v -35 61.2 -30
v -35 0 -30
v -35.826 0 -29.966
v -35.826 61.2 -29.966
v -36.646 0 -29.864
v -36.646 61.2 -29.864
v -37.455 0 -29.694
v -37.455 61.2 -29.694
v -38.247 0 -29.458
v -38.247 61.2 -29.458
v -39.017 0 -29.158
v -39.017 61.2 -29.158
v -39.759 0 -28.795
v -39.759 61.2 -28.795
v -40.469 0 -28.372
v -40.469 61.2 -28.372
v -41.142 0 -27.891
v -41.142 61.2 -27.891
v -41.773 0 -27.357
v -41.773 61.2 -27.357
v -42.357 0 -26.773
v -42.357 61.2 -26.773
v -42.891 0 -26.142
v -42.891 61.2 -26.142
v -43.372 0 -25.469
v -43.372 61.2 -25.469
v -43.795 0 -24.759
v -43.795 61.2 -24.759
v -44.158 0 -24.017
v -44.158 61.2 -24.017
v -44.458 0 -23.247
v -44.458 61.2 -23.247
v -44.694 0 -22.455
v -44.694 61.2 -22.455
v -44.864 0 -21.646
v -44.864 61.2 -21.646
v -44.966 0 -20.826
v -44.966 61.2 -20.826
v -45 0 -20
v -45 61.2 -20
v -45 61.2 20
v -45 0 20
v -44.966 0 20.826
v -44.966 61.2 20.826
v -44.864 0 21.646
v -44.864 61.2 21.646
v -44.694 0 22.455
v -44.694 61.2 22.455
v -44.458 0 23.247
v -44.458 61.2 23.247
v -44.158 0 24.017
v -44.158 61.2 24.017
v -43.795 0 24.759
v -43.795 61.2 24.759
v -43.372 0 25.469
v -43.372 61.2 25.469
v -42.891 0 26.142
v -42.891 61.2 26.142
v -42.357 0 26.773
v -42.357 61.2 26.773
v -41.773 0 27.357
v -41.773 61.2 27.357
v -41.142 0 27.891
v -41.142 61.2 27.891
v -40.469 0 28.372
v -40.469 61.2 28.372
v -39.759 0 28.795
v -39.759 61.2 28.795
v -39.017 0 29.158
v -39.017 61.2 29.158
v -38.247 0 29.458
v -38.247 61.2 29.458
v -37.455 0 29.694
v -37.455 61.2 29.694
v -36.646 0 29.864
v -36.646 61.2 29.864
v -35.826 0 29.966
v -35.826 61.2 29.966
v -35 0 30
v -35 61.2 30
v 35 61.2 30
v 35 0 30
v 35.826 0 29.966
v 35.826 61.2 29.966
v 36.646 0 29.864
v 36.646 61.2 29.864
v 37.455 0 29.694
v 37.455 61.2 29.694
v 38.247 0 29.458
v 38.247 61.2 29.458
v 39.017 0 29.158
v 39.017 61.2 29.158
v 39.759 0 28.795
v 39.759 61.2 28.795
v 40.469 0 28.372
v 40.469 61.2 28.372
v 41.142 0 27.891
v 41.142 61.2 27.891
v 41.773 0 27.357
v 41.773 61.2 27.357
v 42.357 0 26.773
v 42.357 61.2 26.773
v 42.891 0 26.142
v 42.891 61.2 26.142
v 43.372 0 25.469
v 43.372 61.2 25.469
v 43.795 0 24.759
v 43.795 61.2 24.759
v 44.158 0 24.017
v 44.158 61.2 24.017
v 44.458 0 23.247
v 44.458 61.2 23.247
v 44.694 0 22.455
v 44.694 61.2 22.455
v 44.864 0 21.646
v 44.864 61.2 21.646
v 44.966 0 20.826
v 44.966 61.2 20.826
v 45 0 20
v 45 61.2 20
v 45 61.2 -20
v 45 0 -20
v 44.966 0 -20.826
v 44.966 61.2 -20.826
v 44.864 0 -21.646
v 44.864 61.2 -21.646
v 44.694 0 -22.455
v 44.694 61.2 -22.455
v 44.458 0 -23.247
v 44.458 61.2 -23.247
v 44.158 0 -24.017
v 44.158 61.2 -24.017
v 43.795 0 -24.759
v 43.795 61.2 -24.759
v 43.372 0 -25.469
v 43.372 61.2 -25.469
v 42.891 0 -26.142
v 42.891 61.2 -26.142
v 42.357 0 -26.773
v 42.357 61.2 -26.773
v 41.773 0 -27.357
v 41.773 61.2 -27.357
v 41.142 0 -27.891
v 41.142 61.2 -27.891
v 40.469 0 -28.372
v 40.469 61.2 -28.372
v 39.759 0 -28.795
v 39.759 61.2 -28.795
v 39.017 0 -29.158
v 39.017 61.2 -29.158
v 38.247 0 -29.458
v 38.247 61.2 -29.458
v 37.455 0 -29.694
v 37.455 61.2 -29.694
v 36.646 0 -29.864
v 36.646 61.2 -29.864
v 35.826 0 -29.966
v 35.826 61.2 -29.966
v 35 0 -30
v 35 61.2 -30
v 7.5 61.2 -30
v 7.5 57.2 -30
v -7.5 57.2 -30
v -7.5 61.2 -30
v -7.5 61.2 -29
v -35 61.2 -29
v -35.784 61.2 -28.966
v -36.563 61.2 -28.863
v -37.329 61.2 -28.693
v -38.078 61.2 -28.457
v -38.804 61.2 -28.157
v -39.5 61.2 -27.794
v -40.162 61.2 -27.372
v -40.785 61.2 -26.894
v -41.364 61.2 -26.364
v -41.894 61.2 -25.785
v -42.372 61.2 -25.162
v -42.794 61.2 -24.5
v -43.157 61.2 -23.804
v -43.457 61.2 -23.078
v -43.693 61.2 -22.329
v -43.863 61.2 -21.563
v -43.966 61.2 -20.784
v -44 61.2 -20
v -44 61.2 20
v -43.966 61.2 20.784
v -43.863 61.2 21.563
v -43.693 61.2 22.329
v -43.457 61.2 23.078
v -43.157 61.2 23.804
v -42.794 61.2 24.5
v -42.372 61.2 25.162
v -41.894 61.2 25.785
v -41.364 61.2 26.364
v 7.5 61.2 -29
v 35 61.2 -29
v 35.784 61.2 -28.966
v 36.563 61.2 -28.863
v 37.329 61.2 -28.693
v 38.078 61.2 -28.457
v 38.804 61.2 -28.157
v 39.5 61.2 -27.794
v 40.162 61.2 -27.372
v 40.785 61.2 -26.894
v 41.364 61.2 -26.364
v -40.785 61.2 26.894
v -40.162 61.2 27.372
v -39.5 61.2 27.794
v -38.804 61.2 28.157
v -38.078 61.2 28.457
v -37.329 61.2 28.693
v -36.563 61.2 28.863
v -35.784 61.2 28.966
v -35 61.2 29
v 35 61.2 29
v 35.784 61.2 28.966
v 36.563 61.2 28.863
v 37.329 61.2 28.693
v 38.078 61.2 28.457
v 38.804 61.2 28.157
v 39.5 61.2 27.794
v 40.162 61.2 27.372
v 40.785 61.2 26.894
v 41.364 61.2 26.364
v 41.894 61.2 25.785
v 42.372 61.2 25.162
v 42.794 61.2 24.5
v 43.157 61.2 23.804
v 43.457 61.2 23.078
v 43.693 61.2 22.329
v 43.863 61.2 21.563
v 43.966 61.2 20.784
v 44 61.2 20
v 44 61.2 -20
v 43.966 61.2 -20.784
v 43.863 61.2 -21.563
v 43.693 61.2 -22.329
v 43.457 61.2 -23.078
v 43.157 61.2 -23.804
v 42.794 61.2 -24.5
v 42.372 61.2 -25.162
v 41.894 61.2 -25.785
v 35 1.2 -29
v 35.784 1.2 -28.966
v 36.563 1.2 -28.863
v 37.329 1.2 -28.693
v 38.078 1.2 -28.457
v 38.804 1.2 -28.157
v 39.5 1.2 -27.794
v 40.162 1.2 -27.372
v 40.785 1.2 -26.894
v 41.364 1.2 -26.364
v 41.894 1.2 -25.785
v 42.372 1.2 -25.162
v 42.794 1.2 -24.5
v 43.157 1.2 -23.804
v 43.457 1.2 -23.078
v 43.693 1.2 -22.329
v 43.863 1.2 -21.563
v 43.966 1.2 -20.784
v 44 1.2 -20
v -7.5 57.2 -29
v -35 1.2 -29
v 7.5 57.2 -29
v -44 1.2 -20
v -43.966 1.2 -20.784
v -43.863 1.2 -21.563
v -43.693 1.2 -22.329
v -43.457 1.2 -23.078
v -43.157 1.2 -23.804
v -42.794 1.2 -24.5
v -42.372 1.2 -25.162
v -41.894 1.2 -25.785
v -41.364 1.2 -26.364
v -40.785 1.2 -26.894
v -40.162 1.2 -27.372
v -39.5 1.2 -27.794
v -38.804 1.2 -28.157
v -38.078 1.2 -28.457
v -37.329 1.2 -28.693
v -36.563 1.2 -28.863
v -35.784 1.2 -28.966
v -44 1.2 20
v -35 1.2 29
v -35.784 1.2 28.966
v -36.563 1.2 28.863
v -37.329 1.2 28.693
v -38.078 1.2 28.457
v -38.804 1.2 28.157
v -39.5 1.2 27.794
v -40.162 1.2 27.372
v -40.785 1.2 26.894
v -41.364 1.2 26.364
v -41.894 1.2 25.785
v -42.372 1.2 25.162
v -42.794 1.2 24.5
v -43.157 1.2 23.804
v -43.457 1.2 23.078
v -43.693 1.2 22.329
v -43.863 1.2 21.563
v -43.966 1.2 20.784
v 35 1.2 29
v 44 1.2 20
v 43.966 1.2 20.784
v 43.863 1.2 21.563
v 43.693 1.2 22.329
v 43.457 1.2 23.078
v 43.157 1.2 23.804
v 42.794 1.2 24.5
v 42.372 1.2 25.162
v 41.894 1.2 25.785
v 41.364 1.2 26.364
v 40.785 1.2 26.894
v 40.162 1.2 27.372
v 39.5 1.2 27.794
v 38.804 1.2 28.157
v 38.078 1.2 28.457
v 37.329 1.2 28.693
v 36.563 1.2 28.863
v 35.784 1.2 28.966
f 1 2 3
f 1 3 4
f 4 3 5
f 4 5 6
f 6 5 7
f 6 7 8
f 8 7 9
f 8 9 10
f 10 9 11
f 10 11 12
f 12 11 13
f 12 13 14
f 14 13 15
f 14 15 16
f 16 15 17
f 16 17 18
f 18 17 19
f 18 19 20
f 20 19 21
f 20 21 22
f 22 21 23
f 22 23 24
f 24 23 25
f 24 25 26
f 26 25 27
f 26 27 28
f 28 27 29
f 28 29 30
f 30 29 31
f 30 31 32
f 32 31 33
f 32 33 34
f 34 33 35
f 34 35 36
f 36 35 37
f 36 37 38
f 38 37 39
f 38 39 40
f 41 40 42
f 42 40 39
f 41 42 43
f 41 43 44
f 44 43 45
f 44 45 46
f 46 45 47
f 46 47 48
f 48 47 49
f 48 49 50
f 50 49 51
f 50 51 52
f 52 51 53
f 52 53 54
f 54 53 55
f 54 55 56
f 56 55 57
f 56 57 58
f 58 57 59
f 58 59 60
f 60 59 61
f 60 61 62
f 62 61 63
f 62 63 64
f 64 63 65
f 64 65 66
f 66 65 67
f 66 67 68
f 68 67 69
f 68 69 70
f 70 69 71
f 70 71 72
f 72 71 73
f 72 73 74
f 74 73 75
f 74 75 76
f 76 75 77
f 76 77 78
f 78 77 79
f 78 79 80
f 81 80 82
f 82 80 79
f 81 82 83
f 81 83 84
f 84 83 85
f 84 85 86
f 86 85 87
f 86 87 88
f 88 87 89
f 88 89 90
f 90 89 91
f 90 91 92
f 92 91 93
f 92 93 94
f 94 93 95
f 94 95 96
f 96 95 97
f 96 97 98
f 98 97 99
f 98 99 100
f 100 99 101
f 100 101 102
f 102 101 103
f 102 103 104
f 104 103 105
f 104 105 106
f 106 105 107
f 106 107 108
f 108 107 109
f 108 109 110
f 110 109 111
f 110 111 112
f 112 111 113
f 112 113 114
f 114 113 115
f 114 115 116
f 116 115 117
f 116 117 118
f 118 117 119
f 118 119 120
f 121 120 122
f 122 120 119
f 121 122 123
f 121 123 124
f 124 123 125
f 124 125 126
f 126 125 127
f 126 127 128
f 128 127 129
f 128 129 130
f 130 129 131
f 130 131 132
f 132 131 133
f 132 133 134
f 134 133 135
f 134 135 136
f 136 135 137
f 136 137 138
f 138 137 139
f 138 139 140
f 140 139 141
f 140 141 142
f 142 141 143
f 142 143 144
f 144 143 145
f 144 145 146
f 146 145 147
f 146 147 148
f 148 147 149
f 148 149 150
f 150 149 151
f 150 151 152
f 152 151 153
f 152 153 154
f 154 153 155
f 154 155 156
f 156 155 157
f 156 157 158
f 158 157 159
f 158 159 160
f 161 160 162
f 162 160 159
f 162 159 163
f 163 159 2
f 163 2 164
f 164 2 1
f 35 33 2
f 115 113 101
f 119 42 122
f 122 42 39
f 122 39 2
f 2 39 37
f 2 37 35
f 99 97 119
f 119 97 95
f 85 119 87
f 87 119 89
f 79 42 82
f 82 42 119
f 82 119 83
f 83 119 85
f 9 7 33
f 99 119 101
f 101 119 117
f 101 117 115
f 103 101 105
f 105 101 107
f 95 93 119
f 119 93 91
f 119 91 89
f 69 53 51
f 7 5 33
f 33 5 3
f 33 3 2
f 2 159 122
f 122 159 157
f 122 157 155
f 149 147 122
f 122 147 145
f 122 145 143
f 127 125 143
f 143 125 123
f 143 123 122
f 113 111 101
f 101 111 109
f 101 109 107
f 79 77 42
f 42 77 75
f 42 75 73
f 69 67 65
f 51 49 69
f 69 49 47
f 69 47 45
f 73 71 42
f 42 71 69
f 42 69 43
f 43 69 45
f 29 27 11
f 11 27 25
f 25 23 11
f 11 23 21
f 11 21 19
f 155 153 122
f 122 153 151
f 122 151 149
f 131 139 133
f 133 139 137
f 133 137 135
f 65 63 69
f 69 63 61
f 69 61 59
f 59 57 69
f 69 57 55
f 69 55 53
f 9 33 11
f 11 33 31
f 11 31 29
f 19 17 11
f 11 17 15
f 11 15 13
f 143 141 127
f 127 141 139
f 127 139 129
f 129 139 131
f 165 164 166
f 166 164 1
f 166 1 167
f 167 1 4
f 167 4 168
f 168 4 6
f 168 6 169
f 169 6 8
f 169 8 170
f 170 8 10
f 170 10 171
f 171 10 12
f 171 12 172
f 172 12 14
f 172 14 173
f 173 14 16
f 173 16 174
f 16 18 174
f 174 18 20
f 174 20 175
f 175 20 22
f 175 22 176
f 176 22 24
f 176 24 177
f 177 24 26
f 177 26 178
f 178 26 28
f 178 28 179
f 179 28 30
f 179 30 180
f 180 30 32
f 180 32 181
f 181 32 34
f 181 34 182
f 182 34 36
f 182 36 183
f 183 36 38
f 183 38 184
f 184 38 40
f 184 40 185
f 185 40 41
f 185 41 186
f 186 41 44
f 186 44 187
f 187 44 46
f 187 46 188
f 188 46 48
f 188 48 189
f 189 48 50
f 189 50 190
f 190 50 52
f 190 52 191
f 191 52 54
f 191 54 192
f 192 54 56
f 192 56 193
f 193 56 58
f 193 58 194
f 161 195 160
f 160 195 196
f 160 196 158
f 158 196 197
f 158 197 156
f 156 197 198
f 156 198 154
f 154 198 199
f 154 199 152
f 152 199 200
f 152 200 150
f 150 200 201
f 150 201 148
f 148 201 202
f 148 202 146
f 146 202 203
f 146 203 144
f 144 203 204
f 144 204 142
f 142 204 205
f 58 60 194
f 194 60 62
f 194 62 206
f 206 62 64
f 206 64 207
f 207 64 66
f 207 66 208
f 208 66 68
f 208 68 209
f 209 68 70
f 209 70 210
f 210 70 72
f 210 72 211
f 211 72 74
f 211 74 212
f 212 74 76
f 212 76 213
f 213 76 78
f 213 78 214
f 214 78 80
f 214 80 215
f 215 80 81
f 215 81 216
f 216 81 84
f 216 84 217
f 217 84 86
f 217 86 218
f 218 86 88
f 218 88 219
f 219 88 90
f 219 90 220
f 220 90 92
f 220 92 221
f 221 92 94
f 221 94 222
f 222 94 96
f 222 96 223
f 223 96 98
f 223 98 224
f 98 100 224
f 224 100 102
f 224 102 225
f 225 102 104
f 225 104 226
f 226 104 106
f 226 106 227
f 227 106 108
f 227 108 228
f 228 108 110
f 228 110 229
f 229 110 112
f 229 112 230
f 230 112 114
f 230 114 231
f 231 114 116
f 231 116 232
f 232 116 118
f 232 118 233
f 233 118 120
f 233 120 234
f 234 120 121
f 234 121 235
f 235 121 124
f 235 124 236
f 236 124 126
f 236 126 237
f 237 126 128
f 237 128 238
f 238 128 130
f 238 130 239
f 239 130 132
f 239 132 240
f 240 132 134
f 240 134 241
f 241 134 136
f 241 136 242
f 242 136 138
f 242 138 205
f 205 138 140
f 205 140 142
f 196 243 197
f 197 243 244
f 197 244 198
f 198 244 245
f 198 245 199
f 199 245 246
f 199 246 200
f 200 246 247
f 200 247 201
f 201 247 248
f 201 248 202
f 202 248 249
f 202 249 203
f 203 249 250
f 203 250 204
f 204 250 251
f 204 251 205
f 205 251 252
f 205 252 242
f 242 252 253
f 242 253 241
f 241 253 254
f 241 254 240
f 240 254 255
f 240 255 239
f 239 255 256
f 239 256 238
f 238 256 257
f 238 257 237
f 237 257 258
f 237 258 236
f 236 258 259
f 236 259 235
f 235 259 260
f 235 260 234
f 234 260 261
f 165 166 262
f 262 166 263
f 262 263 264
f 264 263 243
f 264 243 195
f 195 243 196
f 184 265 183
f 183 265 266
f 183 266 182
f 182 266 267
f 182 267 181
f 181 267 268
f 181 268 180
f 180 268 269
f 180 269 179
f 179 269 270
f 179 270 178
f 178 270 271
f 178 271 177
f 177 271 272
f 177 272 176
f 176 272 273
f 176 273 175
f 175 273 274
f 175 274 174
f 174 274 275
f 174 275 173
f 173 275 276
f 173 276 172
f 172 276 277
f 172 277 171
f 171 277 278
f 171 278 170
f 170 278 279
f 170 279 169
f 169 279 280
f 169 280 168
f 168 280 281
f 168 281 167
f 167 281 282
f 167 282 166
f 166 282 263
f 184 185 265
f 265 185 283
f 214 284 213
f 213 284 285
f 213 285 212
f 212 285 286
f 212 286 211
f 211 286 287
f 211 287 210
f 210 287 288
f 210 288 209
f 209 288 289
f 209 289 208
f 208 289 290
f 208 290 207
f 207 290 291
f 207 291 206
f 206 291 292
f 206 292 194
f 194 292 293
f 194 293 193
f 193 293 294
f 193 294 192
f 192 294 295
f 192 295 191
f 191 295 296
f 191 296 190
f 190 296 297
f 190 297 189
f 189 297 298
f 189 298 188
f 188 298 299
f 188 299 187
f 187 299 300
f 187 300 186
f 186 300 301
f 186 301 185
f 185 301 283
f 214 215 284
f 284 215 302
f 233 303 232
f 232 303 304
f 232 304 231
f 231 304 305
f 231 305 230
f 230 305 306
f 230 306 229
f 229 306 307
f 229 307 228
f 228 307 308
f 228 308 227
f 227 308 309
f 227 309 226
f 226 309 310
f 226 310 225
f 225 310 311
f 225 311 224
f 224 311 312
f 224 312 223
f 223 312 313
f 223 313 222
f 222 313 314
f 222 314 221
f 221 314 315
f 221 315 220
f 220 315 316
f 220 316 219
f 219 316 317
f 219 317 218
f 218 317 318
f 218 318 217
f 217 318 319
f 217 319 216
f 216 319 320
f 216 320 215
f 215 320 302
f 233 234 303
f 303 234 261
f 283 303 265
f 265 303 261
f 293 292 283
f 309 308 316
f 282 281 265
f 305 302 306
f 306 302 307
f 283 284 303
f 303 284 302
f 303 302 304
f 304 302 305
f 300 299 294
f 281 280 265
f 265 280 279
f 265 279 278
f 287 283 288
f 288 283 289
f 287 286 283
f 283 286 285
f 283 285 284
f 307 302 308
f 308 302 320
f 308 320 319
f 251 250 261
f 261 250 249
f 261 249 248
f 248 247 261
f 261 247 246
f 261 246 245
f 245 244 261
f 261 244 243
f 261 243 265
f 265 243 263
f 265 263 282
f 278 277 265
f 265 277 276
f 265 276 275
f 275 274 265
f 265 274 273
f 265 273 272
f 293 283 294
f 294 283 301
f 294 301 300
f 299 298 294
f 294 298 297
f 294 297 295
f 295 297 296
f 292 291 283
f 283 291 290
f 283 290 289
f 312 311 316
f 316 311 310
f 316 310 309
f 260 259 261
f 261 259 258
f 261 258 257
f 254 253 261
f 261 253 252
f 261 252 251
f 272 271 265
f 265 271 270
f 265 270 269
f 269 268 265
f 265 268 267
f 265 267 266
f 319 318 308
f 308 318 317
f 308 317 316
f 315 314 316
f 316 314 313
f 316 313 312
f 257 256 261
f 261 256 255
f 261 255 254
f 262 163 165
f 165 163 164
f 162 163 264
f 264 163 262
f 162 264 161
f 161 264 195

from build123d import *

# Parameters (mm, degrees)
EXTRUDE_1_DEPTH     = 1.2
EXTRUDE_2_DEPTH     = 60
SKETCH_5_W          = 15
SKETCH_5_H          = 8
CUT_EXTRUDE_1_DEPTH = 1.5


with BuildPart() as part:
    # 草图1 → 凸台-拉伸1 (new body)
    with BuildSketch(Plane(origin=(0, 0, 0), x_dir=(1, 0, 0), z_dir=(0, 1, 0))):
        with BuildLine():
            Line((-35, 30), (35, 30))
            ThreePointArc((35, 30), (42.071067812, 27.071067812), (45, 20))
            Line((45, 20), (45, -20))
            ThreePointArc((45, -20), (42.071067812, -27.071067812), (35, -30))
            Line((35, -30), (-35, -30))
            ThreePointArc((-35, -30), (-42.071067812, -27.071067812), (-45, -20))
            Line((-45, -20), (-45, 20))
            ThreePointArc((-45, 20), (-42.071067812, 27.071067812), (-35, 30))
        make_face()
    extrude(amount=EXTRUDE_1_DEPTH)

    # 草图2 → 凸台-拉伸2 (add)
    with BuildSketch(Plane(origin=(0, 1.2, 0), x_dir=(1, 0, 0), z_dir=(0, 1, 0))):
        with BuildLine():
            Line((45, -20), (45, 20))
            ThreePointArc((45, 20), (42.071067812, 27.071067812), (35, 30))
            Line((35, 30), (-35, 30))
            ThreePointArc((-35, 30), (-42.071067812, 27.071067812), (-45, 20))
            Line((-45, 20), (-45, -20))
            ThreePointArc((-45, -20), (-42.071067812, -27.071067812), (-35, -30))
            Line((-35, -30), (35, -30))
            ThreePointArc((35, -30), (42.071067812, -27.071067812), (45, -20))
        make_face()
        with BuildLine():
            Line((44, -20), (44, 20))
            ThreePointArc((44, 20), (41.363961031, 26.363961031), (35, 29))
            Line((35, 29), (-35, 29))
            ThreePointArc((-35, 29), (-41.363961031, 26.363961031), (-44, 20))
            Line((-44, 20), (-44, -20))
            ThreePointArc((-44, -20), (-41.363961031, -26.363961031), (-35, -29))
            Line((-35, -29), (35, -29))
            ThreePointArc((35, -29), (41.363961031, -26.363961031), (44, -20))
        make_face(mode=Mode.SUBTRACT)
    extrude(amount=EXTRUDE_2_DEPTH)

    # 草图5 → 切除-拉伸1 (cut)
    with BuildSketch(Plane(origin=(0, 0, -30), x_dir=(-1, 0, 0), z_dir=(0, 0, -1))):
        with Locations((0, 61.2)):
            Rectangle(SKETCH_5_W, SKETCH_5_H)
    extrude(amount=-CUT_EXTRUDE_1_DEPTH, mode=Mode.SUBTRACT)


solid = part.part
